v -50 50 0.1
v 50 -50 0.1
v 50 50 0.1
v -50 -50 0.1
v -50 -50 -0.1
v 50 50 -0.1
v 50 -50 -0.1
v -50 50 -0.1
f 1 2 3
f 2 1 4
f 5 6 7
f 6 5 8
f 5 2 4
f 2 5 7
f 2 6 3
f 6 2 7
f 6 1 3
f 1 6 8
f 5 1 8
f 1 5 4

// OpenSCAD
// Simple cube object with a given dimension   

cube([100,100,0.2],center=true);
